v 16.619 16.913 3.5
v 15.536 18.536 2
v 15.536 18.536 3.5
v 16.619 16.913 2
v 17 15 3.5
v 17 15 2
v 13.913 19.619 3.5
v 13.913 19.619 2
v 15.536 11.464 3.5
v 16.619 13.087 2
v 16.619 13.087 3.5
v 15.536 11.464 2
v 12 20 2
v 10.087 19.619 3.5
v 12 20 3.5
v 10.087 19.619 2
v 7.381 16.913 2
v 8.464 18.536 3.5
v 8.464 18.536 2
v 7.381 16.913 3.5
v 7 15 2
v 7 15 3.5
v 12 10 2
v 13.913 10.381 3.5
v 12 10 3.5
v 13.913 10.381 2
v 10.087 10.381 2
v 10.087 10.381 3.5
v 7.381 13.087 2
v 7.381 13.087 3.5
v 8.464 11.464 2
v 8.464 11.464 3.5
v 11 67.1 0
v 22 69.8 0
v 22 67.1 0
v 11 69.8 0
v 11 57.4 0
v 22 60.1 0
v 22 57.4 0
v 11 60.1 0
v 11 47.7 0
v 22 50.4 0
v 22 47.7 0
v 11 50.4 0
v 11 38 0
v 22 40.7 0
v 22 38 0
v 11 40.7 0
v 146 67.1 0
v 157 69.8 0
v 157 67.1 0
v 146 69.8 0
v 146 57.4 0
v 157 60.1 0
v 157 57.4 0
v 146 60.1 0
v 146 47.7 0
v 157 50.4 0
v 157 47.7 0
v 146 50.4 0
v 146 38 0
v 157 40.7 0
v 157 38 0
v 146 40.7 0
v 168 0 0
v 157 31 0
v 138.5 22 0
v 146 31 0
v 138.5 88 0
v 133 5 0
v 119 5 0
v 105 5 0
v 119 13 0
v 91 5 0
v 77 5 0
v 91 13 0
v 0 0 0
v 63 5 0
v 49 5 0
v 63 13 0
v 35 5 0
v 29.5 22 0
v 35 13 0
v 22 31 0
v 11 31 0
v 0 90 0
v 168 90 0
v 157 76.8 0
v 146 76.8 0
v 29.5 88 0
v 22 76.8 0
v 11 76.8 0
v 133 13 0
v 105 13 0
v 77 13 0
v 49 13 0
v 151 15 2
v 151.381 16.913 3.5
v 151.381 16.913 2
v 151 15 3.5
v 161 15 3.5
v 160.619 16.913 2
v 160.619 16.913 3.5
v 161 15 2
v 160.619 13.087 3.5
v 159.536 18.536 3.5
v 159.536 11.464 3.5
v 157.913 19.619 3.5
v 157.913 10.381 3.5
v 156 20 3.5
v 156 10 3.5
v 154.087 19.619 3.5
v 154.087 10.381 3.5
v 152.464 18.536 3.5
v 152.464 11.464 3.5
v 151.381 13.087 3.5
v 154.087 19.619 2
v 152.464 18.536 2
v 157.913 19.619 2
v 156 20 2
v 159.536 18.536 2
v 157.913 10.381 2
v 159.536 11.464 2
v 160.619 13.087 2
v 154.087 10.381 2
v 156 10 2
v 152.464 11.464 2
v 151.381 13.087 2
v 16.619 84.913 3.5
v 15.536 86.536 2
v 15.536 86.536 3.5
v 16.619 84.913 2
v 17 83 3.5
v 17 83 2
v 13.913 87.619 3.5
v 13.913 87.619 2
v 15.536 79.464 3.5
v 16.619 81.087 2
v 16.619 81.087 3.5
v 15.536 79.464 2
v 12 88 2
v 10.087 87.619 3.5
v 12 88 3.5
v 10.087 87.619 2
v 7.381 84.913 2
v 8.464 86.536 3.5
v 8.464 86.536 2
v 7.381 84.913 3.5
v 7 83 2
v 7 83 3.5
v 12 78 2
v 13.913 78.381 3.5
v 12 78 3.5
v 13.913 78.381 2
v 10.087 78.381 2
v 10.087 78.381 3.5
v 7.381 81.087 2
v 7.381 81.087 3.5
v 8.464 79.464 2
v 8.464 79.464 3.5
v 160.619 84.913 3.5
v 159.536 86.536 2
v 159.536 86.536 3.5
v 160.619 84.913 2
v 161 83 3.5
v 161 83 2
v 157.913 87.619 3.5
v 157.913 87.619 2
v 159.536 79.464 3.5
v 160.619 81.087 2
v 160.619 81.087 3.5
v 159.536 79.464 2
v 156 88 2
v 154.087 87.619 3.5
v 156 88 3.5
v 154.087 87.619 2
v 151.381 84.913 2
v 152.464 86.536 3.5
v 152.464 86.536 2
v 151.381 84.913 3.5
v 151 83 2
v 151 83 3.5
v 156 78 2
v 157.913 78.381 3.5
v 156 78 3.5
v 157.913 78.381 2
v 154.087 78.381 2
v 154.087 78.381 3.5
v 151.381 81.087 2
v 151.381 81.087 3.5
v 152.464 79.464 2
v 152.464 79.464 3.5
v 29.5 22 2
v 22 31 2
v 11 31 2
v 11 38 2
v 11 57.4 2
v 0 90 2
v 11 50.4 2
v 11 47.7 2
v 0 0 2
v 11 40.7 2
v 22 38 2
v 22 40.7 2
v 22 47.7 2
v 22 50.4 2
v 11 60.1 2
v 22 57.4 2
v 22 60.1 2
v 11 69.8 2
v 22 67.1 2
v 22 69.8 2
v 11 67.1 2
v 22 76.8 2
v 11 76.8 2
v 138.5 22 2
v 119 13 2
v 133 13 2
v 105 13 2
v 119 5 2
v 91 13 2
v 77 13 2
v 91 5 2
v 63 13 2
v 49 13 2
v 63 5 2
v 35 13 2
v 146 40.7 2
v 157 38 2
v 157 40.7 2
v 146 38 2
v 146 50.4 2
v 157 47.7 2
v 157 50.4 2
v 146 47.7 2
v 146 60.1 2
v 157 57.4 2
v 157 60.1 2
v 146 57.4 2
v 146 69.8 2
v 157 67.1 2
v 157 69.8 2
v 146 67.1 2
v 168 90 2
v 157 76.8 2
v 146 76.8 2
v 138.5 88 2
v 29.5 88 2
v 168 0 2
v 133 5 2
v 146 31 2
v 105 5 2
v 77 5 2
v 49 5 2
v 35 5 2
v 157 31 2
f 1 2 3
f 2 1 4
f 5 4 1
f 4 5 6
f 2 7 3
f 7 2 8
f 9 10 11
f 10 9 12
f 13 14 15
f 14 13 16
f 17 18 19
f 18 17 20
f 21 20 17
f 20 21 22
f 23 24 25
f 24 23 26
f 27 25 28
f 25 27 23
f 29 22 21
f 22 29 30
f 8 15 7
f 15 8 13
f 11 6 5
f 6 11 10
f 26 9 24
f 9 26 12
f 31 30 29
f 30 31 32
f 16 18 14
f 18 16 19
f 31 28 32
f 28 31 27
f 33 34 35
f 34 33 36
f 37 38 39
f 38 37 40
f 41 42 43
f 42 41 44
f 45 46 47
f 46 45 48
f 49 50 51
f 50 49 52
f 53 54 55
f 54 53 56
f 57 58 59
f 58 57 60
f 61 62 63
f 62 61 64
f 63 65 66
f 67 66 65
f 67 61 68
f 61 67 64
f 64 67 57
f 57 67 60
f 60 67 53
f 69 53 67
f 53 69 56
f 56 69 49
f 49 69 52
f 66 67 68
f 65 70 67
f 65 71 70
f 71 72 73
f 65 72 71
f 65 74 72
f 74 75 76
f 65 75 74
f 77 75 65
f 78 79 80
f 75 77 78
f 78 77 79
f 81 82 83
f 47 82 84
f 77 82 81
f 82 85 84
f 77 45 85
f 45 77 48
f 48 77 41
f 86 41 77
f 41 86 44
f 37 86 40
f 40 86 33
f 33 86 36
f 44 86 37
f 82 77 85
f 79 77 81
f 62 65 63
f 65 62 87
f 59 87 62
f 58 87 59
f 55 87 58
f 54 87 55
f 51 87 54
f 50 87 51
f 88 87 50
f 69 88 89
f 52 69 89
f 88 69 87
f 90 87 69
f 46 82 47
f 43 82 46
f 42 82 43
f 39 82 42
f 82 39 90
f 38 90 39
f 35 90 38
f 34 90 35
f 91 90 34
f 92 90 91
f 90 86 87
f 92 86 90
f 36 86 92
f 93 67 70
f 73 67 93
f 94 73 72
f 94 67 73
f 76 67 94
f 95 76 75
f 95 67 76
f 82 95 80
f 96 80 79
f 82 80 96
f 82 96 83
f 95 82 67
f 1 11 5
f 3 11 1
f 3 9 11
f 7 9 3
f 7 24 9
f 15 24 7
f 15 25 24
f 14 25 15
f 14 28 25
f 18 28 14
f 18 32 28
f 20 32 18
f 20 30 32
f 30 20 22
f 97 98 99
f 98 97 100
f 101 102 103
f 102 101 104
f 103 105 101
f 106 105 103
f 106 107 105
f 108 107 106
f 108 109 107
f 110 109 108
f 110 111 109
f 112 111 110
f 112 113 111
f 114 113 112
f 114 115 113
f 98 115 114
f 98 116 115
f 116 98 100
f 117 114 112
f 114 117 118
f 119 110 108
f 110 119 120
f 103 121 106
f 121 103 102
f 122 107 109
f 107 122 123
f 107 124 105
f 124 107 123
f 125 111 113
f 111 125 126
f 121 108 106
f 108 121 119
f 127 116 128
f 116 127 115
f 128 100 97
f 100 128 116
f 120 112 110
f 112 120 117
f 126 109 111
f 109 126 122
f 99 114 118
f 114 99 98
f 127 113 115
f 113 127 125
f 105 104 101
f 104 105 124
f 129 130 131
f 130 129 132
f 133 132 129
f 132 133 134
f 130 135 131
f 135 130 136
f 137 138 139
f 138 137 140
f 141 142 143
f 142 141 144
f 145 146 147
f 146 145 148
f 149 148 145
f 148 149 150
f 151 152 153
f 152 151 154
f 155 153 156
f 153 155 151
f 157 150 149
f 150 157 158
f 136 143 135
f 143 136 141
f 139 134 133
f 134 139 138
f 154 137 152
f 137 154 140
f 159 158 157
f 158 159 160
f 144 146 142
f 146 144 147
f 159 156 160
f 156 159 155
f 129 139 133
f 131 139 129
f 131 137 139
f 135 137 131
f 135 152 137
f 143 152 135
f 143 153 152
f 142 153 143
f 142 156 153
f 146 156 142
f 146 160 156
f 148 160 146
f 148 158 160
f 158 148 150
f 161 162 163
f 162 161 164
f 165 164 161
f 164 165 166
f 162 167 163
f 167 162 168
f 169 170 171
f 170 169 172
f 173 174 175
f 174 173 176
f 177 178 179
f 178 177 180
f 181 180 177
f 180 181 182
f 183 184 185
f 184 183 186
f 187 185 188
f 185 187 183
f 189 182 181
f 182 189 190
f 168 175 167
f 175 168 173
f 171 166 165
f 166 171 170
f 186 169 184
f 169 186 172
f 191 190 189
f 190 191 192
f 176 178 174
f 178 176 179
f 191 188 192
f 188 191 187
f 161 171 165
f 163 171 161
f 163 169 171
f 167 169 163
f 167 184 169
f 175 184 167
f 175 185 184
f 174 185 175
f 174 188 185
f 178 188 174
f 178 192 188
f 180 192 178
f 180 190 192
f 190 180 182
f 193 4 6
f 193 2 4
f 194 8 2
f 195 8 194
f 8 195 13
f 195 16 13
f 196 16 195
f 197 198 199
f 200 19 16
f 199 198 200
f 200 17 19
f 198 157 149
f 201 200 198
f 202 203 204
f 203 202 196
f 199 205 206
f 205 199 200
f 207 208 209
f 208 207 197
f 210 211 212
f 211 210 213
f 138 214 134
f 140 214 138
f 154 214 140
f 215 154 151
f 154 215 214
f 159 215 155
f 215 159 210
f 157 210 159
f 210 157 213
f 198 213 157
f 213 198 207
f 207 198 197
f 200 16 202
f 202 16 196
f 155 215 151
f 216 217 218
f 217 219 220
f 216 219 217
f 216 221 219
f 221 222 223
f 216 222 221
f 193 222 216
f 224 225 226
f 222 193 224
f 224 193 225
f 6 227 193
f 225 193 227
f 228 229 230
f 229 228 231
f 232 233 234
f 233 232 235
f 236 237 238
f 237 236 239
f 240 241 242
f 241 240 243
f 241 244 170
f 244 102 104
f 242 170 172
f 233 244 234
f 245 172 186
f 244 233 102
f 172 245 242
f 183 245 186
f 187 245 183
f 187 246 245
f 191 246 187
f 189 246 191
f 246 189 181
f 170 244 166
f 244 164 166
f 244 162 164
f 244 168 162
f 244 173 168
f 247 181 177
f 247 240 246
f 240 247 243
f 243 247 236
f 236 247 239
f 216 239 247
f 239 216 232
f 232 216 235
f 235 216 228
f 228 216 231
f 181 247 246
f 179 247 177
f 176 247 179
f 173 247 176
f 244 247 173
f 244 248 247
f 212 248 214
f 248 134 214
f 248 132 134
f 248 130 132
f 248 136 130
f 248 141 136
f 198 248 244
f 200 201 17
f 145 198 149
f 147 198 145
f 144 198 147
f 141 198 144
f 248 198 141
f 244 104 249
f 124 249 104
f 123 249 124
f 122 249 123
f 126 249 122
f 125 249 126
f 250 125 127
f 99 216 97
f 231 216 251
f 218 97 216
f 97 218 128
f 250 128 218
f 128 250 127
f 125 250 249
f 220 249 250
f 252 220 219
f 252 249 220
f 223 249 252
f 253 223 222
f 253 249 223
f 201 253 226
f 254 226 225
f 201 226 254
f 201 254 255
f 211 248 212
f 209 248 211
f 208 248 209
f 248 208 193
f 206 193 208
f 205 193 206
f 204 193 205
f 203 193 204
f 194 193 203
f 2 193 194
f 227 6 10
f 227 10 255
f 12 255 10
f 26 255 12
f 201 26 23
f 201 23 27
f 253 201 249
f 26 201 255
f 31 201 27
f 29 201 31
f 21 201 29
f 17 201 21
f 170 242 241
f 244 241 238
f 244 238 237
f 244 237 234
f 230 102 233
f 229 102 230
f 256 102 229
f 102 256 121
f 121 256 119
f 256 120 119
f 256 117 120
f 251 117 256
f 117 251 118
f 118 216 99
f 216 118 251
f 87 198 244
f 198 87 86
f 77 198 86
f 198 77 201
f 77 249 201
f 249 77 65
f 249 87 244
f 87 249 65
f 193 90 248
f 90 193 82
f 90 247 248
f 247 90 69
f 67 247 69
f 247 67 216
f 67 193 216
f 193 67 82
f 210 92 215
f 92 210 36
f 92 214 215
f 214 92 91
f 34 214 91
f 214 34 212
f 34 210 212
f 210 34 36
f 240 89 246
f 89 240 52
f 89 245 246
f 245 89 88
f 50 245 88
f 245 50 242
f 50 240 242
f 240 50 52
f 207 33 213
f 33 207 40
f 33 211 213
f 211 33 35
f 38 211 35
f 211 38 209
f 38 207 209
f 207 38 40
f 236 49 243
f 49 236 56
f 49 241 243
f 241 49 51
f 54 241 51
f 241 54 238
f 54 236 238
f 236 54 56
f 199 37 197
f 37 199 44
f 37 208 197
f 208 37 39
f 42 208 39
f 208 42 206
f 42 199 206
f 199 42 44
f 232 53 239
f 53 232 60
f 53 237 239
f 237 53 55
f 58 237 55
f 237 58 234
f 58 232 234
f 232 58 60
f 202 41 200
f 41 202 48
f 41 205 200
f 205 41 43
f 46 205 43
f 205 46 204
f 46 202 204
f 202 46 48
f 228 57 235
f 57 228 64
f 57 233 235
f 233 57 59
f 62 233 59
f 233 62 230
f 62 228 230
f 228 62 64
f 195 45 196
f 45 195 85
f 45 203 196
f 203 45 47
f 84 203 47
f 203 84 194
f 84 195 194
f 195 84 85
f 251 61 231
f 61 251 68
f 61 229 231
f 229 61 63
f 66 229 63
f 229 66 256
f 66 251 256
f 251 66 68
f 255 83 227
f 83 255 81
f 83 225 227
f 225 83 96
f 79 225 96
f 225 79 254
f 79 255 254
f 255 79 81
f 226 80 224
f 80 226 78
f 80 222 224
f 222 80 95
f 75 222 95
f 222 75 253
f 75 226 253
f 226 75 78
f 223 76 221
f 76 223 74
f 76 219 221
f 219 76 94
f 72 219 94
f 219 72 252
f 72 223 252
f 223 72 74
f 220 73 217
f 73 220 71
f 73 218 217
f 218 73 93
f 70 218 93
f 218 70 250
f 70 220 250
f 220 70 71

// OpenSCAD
dim = [168,90];

sidebutton = [11,7];
side_offset = [11,31];
side_space = [0, 2.7 + sidebutton[1]];
sidebuttons = 5;
botbutton = [14,8];
bot_offset = [35,5];
bot_space = [14 + botbutton[0],0];
botbuttons = 4;

screen_dim = [109,66];
screen_off = [(dim[0] - screen_dim[0])/2,dim[1] - screen_dim[1] - 2];

echo(side_offset[1] + sidebuttons*sidebutton[1]+(sidebuttons-1)*side_space[1]);

echo(bot_offset[0]*2 + botbuttons*botbutton[0]+(botbuttons-1)*bot_space[0]);

linear_extrude(2)
difference() {
    square(dim);
    
    for(b=[0:sidebuttons-1]) {
        translate(side_offset+side_space*b)
        square(sidebutton);
    }
    translate([dim[0],0])
    mirror(v=[1,0,0])
    for(b=[0:sidebuttons-1]) {
        translate(side_offset+side_space*b)
        square(sidebutton);
    }
    
    for(b=[0:botbuttons-1]) {
        translate(bot_offset+bot_space*b)
        square(botbutton);
    }
    
    translate(screen_off)
    square(screen_dim);
}

color("red"){
translate([7,10,0])
translate([5,5,0])
cylinder(r=10/2,h=3.5);

translate([dim[0] - 7 - 10,10,0])
translate([5,5,0])
cylinder(r=10/2,h=3.5);

translate([7,dim[1] - 10 - 2])
translate([5,5,0])
cylinder(r=10/2,h=3.5);

translate([dim[0] - 10 - 7,dim[1] - 10 - 2])
translate([5,5,0])
cylinder(r=10/2,h=3.5);
}
